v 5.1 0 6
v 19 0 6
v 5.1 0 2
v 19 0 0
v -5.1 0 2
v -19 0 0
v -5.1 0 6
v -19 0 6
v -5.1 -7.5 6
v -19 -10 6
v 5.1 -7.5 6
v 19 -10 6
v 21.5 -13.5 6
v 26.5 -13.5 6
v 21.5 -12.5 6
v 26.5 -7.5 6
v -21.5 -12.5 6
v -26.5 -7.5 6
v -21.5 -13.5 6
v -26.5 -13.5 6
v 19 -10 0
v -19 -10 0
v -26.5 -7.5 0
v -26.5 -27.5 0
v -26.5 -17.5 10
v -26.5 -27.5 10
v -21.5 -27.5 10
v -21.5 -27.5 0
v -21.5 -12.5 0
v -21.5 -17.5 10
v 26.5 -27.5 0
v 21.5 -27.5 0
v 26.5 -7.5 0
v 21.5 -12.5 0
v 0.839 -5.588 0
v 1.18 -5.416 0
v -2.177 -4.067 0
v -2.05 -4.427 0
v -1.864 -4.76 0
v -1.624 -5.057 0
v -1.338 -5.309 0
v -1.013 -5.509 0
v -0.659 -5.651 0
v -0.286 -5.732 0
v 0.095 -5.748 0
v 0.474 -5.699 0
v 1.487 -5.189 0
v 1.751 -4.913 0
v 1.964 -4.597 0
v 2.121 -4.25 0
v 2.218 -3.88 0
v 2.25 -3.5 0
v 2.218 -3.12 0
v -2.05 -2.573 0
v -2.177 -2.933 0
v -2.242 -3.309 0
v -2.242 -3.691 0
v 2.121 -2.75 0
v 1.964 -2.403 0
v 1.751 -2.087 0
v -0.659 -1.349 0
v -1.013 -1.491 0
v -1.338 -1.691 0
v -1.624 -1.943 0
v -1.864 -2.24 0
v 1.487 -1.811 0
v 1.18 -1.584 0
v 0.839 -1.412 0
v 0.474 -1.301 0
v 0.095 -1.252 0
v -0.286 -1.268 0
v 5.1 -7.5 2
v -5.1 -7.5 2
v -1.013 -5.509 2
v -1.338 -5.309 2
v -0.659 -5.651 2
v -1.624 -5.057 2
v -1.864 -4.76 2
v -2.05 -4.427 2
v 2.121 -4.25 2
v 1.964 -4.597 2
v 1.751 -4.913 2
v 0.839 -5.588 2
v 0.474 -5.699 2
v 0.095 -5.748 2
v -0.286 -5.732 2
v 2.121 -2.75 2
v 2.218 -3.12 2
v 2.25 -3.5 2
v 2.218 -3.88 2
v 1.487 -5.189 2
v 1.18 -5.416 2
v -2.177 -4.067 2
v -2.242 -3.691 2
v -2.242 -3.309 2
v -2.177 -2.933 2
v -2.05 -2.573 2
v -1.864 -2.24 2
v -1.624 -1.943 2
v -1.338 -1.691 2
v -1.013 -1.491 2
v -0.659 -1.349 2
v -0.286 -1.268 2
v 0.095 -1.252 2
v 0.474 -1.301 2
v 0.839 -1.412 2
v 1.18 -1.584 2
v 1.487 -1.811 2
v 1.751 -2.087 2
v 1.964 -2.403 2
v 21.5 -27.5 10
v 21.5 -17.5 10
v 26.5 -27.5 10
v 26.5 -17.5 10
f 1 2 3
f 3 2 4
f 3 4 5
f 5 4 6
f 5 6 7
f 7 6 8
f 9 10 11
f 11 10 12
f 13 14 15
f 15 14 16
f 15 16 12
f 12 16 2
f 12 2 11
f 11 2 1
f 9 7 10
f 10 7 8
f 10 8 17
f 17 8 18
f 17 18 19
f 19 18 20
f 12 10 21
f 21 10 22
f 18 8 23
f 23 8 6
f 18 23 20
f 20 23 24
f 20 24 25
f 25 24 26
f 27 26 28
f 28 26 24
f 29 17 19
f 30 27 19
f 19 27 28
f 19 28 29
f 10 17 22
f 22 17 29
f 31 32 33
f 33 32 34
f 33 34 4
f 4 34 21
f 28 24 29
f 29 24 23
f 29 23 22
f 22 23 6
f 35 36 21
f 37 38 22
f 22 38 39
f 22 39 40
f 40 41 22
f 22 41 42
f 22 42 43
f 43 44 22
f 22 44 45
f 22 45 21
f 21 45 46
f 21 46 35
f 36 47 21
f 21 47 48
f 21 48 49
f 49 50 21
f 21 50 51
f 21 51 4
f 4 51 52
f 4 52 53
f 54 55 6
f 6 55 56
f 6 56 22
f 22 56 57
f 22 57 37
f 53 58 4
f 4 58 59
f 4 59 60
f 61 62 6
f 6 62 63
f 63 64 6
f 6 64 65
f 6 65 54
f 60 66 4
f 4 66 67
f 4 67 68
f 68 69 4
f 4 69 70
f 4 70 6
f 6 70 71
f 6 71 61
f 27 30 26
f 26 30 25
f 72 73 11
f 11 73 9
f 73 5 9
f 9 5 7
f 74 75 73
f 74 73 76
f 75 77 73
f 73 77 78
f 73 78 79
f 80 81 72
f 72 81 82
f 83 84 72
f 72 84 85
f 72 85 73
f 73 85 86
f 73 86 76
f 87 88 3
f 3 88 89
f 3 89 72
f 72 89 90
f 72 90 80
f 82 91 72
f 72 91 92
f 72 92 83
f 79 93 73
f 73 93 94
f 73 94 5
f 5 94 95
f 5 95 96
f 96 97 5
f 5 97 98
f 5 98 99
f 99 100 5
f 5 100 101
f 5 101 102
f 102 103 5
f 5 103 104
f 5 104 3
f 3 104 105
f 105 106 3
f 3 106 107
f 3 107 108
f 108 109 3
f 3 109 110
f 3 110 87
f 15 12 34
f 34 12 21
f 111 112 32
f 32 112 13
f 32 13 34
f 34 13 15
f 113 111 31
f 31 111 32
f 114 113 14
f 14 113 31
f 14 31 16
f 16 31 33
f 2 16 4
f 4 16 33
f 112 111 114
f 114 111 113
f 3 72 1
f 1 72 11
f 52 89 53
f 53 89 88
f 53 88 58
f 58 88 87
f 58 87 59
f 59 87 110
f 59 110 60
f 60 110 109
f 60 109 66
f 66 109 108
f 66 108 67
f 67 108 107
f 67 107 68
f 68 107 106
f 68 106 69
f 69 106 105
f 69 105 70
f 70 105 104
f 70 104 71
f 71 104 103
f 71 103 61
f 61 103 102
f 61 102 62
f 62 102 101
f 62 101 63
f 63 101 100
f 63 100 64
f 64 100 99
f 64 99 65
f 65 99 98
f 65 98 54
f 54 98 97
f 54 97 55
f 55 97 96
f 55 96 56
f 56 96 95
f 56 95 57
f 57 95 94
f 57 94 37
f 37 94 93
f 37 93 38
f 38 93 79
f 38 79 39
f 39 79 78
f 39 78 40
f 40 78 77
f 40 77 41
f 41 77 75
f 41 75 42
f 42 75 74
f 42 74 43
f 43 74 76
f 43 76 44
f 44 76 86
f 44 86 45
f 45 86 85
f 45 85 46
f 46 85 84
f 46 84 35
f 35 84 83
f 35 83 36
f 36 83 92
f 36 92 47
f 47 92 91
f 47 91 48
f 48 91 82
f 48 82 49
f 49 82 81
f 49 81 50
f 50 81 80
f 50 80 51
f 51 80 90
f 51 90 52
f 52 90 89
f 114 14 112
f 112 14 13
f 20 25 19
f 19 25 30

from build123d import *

# Parameters (mm, degrees)
BOSS_EXTRUDE1_DEPTH  = 6
SKETCH6_W            = 5
SKETCH6_H            = 10
BOSS_EXTRUDE2_DEPTH  = 4
SKETCH3_W            = 5.1
SKETCH3_H            = 7.5
CUT_EXTRUDE1_DEPTH   = 4
M4_CLEARANCE_HOLE1_D = 4.5
CHAMFER2_SIZE        = 4


with BuildPart() as part:
    # Sketch1 → Boss-Extrude1 (new body)
    with BuildSketch(Plane.XY):
        Polygon((0, 0), (0, -10), (-19, -10), (-21.5, -12.5), (-21.5, -27.5), (-26.5, -27.5), (-26.5, -7.5), (-19, 0), align=None)
    boss_extrude1 = extrude(amount=BOSS_EXTRUDE1_DEPTH)

    # Sketch6 → Boss-Extrude2 (add)
    with BuildSketch(Plane.XY.offset(6)):
        with Locations((-24, -22.5)):
            Rectangle(SKETCH6_W, SKETCH6_H)
    boss_extrude2 = extrude(amount=BOSS_EXTRUDE2_DEPTH)

    # Sketch3 → Cut-Extrude1 (cut)
    with BuildSketch(Plane.XY.offset(6)):
        with Locations((-2.55, -3.75)):
            Rectangle(SKETCH3_W, SKETCH3_H)
    cut_extrude1 = extrude(amount=-CUT_EXTRUDE1_DEPTH, mode=Mode.SUBTRACT)

    # Mirror1: Boss-Extrude1, Boss-Extrude2, Cut-Extrude1 across plane
    add(boss_extrude1.mirror(Plane(origin=(0, 0, 6), x_dir=(0, 0, 1), z_dir=(-1, 0, 0))))
    add(boss_extrude2.mirror(Plane(origin=(0, 0, 6), x_dir=(0, 0, 1), z_dir=(-1, 0, 0))))
    add(cut_extrude1.mirror(Plane(origin=(0, 0, 6), x_dir=(0, 0, 1), z_dir=(-1, 0, 0))), mode=Mode.SUBTRACT)

    # M4 Clearance Hole1 (through all)
    with Locations(Plane.XY.offset(2)):
        with Locations((0, -3.5)):
            Hole(M4_CLEARANCE_HOLE1_D / 2)

    # Chamfer2
    # the kernel refuses this chamfer: 4 mm, written as the material it adds along each edge
    with BuildSketch(Plane(origin=(-21.5, -17.5, 6), x_dir=(0, 0.9996219169112968, -0.02749587661058627), z_dir=(-1, 0, 0))) as chamfer2_piece_1_section:
        Polygon((CHAMFER2_SIZE * 0.999621916911, -CHAMFER2_SIZE * 0.0274958766106), (-CHAMFER2_SIZE * 0.0274958766106, -CHAMFER2_SIZE * 0.999621916911), (0, 0), align=None)
    chamfer2_piece_1 = extrude(amount=5, mode=Mode.PRIVATE)
    chamfer2_piece_1 = split(chamfer2_piece_1, bisect_by=Plane(origin=(-24, -16.178383383, 10), z_dir=(0, 0, -1)), keep=Keep.TOP, mode=Mode.PRIVATE)
    add(chamfer2_piece_1)
    with BuildSketch(Plane(origin=(21.5, -17.5, 6), x_dir=(0, 0.9996219169112968, -0.02749587661058627), z_dir=(1, 0, 0))) as chamfer2_piece_2_section:
        Polygon((CHAMFER2_SIZE * 0.999621916911, CHAMFER2_SIZE * 0.0274958766106), (-CHAMFER2_SIZE * 0.0274958766106, CHAMFER2_SIZE * 0.999621916911), (0, 0), align=None)
    chamfer2_piece_2 = extrude(amount=5, mode=Mode.PRIVATE)
    chamfer2_piece_2 = split(chamfer2_piece_2, bisect_by=Plane(origin=(24, -16.178383383, 10), z_dir=(0, 0, -1)), keep=Keep.TOP, mode=Mode.PRIVATE)
    add(chamfer2_piece_2)


solid = part.part
